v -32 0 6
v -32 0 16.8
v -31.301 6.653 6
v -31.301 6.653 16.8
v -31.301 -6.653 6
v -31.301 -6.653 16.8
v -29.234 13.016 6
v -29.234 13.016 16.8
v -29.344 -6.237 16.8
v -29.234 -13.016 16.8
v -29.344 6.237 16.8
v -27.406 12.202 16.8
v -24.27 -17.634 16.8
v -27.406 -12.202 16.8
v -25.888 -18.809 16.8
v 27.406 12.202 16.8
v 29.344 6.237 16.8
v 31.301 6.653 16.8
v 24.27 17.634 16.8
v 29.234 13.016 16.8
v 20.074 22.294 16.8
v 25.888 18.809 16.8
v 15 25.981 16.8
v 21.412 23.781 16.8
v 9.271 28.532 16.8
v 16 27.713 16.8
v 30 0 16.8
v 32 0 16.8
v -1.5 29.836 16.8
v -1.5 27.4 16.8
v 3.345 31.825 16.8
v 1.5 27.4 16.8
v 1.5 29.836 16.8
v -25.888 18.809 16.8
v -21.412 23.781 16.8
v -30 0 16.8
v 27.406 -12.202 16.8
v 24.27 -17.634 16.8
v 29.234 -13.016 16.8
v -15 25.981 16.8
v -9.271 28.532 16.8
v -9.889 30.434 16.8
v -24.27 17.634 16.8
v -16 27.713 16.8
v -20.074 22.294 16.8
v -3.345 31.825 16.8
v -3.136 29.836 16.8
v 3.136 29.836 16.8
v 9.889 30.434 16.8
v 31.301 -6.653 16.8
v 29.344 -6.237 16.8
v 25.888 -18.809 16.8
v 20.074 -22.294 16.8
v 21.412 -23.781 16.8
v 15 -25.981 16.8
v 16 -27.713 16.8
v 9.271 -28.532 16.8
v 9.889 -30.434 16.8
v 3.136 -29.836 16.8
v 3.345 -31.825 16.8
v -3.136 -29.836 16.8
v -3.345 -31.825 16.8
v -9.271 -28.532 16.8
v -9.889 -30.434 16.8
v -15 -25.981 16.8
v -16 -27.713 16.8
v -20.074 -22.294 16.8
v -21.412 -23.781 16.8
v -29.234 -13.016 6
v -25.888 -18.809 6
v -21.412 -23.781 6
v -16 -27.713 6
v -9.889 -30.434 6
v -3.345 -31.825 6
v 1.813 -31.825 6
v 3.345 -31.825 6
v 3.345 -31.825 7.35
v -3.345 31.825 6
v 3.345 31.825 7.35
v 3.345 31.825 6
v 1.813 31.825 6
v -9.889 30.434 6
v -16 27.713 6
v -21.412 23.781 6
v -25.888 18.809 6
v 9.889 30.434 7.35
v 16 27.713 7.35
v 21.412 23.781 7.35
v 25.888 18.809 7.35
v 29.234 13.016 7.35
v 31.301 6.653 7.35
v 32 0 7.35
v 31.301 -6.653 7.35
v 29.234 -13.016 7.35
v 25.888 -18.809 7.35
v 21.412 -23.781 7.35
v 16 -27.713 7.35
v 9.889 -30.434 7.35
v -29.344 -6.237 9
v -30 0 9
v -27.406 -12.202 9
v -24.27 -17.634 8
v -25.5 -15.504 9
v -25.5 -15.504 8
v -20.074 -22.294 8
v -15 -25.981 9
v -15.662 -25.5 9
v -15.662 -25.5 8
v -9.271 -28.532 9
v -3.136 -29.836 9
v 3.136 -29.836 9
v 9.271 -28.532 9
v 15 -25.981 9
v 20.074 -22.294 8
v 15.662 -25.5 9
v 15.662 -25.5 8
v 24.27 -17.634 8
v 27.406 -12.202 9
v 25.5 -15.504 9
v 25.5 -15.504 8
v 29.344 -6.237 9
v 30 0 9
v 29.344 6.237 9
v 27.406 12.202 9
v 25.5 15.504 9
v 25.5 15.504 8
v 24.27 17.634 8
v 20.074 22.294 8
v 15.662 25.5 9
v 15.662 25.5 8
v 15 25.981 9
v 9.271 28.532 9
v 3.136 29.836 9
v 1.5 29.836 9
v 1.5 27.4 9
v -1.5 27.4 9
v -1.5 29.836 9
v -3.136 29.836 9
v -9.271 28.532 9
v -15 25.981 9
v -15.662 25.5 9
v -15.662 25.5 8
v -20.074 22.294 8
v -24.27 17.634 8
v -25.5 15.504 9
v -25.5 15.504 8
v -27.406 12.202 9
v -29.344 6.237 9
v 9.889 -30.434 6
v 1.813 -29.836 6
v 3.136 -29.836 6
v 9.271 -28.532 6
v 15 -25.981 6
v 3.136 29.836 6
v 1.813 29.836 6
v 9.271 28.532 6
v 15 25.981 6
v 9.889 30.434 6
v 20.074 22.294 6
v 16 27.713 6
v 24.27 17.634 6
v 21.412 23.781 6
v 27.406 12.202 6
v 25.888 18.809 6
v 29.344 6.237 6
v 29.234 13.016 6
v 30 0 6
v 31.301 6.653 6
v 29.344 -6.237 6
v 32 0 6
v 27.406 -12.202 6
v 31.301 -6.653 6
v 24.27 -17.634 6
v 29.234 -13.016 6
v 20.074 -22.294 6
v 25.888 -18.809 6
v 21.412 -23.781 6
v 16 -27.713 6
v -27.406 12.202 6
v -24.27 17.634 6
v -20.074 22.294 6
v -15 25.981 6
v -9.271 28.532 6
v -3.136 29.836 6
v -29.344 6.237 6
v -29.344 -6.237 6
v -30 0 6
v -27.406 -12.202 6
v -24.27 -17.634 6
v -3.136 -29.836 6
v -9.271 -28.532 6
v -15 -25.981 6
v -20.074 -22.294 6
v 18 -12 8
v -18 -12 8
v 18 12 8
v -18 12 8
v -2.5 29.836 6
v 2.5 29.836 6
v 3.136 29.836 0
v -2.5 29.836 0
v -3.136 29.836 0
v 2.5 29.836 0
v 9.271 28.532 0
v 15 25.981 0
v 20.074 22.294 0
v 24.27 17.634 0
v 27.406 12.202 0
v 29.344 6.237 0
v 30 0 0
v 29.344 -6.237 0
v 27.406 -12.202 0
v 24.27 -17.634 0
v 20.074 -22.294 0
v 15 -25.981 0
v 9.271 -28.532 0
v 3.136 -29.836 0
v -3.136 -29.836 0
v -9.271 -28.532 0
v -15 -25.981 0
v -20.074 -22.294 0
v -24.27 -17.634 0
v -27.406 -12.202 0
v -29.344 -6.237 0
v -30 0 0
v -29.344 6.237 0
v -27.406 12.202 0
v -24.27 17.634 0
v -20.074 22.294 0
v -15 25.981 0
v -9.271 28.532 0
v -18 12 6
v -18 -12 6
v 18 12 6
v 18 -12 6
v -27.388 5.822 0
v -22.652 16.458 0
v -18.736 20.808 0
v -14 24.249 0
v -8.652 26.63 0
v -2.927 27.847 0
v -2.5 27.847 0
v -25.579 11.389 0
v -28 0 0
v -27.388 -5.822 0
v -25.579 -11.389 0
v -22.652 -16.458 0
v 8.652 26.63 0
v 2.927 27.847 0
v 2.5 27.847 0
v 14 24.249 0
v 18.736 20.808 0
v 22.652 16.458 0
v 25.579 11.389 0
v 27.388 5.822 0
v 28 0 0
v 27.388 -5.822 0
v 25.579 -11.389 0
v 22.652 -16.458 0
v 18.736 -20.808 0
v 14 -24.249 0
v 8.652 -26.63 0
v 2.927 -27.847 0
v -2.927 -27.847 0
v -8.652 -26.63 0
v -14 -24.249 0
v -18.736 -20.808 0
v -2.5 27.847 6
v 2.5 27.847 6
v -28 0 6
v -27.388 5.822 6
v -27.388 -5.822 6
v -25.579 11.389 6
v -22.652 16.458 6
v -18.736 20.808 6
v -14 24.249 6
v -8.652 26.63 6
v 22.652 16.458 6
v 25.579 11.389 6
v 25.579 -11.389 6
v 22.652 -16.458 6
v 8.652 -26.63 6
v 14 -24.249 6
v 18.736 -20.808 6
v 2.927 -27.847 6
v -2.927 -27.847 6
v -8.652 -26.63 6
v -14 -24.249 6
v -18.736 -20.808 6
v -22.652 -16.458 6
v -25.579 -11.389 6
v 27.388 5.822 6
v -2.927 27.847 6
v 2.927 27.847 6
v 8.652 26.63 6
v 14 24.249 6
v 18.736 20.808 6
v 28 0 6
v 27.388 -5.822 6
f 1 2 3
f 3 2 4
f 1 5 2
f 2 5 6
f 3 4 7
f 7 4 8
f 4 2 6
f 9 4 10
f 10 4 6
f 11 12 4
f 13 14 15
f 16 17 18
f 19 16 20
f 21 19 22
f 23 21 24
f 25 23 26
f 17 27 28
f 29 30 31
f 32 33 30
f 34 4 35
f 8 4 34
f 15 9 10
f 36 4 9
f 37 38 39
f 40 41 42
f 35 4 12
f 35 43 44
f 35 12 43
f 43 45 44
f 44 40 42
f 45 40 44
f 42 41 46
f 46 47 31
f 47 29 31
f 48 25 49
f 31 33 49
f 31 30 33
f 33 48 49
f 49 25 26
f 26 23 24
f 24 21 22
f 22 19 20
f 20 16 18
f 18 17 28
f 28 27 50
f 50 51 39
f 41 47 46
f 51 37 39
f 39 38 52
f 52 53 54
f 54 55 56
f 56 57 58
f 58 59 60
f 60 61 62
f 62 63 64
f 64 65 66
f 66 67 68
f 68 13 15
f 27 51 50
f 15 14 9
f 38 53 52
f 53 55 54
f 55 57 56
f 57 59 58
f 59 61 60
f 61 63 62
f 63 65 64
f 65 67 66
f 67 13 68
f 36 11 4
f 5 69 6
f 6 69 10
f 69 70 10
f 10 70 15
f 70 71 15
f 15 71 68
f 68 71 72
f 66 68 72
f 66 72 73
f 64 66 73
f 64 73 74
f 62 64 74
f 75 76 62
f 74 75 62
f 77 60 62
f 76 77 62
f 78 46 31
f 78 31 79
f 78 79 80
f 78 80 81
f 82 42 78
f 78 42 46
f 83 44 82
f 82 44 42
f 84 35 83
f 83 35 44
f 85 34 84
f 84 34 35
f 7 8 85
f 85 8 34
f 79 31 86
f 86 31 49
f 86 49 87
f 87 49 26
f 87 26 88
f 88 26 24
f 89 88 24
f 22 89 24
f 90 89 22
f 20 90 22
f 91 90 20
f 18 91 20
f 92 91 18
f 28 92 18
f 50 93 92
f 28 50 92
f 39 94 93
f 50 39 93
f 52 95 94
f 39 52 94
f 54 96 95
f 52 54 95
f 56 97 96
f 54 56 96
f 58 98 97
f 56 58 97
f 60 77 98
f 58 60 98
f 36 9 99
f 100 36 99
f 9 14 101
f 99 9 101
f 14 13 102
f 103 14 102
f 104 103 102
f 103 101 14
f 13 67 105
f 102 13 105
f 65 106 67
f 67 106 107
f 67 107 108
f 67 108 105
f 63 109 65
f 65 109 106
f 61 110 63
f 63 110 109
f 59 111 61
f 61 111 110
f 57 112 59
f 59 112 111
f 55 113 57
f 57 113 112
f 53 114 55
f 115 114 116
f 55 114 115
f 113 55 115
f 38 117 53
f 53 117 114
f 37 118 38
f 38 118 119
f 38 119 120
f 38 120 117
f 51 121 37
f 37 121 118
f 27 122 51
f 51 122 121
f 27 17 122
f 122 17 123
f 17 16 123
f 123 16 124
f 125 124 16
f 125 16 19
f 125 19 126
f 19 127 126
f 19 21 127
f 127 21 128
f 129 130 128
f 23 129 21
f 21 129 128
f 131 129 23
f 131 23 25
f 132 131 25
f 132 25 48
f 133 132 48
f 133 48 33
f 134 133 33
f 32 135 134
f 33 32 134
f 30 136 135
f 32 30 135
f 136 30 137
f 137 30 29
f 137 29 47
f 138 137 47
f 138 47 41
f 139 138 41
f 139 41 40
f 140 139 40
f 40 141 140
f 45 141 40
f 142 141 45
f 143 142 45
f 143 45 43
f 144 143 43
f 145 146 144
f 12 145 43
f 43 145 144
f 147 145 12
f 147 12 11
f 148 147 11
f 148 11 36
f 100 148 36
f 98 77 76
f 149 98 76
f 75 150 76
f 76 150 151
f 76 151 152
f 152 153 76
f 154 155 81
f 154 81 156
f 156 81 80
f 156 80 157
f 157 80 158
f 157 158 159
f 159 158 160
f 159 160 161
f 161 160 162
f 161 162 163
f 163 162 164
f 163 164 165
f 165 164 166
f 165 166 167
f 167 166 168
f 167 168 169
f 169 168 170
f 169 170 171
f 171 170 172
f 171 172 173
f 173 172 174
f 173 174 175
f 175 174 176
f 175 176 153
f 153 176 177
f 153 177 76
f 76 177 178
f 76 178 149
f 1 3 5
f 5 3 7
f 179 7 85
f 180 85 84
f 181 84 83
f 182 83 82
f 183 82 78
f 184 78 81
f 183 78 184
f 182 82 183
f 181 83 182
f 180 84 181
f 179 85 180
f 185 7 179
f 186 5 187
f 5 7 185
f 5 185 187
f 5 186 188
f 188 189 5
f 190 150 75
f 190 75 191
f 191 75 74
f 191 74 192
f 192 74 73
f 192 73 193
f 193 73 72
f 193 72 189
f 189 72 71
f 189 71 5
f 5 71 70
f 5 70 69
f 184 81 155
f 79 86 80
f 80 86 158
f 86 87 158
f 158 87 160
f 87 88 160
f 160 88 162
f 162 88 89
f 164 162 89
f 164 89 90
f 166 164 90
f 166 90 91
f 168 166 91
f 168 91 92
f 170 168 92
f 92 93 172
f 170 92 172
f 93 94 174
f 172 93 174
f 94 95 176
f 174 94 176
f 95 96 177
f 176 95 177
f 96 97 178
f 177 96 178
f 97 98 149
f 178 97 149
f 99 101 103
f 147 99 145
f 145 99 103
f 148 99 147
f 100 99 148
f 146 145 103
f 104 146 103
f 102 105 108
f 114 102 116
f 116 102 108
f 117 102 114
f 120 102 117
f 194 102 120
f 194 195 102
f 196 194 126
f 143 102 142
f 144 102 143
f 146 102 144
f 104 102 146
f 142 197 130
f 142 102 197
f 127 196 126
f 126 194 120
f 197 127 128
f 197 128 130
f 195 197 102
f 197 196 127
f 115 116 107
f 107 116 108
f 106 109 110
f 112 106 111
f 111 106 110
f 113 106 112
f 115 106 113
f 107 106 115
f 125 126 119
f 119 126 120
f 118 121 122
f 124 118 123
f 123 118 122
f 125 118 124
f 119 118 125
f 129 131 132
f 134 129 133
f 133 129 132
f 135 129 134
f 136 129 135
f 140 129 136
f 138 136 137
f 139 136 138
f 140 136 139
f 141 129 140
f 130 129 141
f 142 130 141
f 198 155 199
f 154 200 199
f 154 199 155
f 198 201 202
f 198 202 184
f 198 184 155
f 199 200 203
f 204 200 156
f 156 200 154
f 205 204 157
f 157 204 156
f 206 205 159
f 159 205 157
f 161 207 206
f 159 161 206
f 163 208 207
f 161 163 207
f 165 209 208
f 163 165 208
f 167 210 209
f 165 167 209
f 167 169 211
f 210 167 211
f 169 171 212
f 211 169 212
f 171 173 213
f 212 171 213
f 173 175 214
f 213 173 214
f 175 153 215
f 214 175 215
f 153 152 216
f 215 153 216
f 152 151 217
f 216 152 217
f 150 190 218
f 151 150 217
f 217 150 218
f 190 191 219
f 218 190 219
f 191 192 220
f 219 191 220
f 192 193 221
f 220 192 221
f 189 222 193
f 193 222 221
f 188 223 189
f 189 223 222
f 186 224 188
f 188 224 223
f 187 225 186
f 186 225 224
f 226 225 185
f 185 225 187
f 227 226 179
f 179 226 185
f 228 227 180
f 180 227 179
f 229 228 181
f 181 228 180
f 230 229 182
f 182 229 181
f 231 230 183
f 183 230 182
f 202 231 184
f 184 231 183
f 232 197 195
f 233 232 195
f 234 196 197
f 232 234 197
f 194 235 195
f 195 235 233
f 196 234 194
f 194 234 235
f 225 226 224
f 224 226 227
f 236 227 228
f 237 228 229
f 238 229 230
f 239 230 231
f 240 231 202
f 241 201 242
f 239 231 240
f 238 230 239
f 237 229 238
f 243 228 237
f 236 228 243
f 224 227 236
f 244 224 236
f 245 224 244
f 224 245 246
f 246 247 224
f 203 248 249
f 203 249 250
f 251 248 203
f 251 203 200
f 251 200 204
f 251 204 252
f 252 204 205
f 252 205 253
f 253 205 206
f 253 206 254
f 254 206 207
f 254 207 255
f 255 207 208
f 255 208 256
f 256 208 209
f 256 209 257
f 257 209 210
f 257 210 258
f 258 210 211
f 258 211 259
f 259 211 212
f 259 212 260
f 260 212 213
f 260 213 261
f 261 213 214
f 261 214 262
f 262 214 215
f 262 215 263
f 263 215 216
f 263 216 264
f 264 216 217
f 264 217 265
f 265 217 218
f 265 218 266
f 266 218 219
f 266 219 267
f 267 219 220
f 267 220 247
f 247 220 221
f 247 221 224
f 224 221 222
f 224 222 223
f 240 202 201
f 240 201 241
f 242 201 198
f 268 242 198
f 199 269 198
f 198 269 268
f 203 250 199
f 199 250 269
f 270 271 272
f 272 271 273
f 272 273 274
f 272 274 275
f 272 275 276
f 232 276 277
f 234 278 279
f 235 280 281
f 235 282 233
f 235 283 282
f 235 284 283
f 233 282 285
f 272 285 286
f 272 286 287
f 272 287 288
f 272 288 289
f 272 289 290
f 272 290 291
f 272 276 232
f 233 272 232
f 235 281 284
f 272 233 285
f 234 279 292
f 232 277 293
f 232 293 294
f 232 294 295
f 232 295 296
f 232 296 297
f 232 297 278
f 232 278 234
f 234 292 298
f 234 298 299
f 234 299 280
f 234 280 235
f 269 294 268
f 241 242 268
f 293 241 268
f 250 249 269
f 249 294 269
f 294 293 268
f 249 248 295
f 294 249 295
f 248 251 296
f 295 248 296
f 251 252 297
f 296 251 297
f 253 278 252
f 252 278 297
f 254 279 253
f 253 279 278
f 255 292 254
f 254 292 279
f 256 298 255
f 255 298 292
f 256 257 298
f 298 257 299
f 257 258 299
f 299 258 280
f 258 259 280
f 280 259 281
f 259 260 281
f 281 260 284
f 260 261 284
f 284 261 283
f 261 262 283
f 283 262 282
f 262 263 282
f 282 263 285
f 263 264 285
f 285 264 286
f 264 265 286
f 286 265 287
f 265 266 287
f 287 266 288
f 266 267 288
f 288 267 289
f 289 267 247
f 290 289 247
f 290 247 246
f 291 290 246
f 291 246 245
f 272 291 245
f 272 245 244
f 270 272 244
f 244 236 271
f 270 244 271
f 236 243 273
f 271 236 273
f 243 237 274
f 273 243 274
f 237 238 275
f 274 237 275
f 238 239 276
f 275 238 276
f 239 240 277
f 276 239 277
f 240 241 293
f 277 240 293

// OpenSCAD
// file: settingsLenghts.scad
//Ancho de la pared
pared  = 2;
//Radio del centro hueco
radioC = 11;
//Alto de la capa de apertura
aperH = 5.5;
//Ancho de la apertura
aperW = 5+1.1;//Ancho mas holgura
//Ancho del lente macro
macroW = 9.3;
//Profundidad del macro
macroH = 3;
//Profundidad parte de atras y delante
profDelante = 6;
profAtras = 6;
//Ceja entre uniones de cilindros
cejaH = 6;
guiaParedW = 2;
tmpHolg = 1.8;


//Correcc

//
//CÁMARA
camP = 3;//Grueso de la pared del presente modelo
camW = 105;//Ancho de la cámara
camH = 61;//Alto de la cámara
camD = 23.5;//Profundidad de la cámara
camHlg = 6;//Holgura que se deja para los tornillos
camLW = 57/2;//Radio del exterior del lente
torW  = 2;//Radio

//
//Ancho de tubo principal (grande)
mcW = 32;//radio
mcH = 28;

//Dimensiones del difractador
diffW = 51;//Alto y Ancho
diffD=1;//Profundidad del difractador
diffWinW=36;//Ancho de la ventana de difracción
diffWinH=24;//Alto de la ventana de difracción

//
//Adquisición de luz
luzHBig = 10; //donde va el tornillo
luzWBig = 28; //27:diametro donde va el tornillo
luzHBigT = 4; //alto del tornillo
luzWBigT = 6; //6: ancho del tornillo
luzHRosca = 7; //donde va la rosca
luzWRosca = 23; //22:diametro de donde va la rosca



//Cuadro guia para que no se mueva
guiaH = cejaH;
guiaW = 3;



module creaPared(h){
	difference(){
		//Pone el cilindro principal
		cylinder(r=mcW,h);

		//Le quita el contorno exterior
		translate([0,0,-0.1])
		cylinder(r=mcW-pared,h+0.2);
	}
}
module creaGuiaTornilloCentrada(){
	translate([-luzWBigT/2,-luzWBigT/2,0])
	cube([luzWBigT,luzWBigT,luzHBig-1+0.2]);
}
module creaGuiaTornilloCentradaArea(){
	tmpW = luzWBigT + pared;
	tmpH = luzHBig  + pared;
	translate([-tmpW/2,-tmpW/2,0])
	cube([tmpW,tmpW,tmpH]);
}
module creaGuia(h){
	//Pone el circulo soporte
	difference(){
		cylinder(r=mcW,h);
		translate([0,0,-0.1])
		cylinder(r=mcW-pared,h+0.2);
	}
	//Pone la guia1
	translate([0,mcW-pared-(guiaW/2)+0.4,0])
	creaGuiaCentrada(h);
}
module creaGuiaHembra(h){
	//Pone el circulo soporte
	tmpW = mcW-guiaW;	
	creaPared(sopH);
	sopH = 1.35;
	
	//Pone la pared de la guia
	difference(){
		cylinder(r=(mcW-pared),sopH+h);
		translate([0,0,-0.1])
		cylinder(r=(mcW-pared-guiaParedW),sopH+h+0.2);
		//Pone la guia
		translate([-(guiaW/3),tmpW,sopH])
		creaGuiaCentrada(sopH+h+0.2);
		translate([(guiaW/3),tmpW,sopH])
		creaGuiaCentrada(sopH+h+0.2);
	}
}
module creaGuiaCentrada(h){
	translate([-guiaW/2,-guiaW/2,0])
	cube([guiaW,guiaW,h]);
}
// main file
include <settingsLenghts.scad>


/////////////////////////////////////



//Pone la apertura
translate([0,0,cejaH])
creaCilDiffracter();

//Pone la guia hembra
translate([0,0,cejaH+1.35])
rotate([0,180,0])
creaGuiaHembra(cejaH);

//Pone guia macho
translate([0,0,cejaH+pared+diffD])
creaGuia(cejaH+tmpHolg);






module creaCilDiffracter(){
	difference(){
		//Pone el cilindro principal
		cylinder(r=mcW,pared+diffD);

		//Le quita la base del difractador
		translate([-diffW/2,-diffW/2,pared])
		cube([diffW,diffW,diffD+0.2]);

		//Le quita la ventana
		translate([-diffWinW/2,-diffWinH/2,-0.1])
		cube([diffWinW,diffWinH,diffD+pared+0.2]);
	}
	creaPared(pared+diffD);
}
